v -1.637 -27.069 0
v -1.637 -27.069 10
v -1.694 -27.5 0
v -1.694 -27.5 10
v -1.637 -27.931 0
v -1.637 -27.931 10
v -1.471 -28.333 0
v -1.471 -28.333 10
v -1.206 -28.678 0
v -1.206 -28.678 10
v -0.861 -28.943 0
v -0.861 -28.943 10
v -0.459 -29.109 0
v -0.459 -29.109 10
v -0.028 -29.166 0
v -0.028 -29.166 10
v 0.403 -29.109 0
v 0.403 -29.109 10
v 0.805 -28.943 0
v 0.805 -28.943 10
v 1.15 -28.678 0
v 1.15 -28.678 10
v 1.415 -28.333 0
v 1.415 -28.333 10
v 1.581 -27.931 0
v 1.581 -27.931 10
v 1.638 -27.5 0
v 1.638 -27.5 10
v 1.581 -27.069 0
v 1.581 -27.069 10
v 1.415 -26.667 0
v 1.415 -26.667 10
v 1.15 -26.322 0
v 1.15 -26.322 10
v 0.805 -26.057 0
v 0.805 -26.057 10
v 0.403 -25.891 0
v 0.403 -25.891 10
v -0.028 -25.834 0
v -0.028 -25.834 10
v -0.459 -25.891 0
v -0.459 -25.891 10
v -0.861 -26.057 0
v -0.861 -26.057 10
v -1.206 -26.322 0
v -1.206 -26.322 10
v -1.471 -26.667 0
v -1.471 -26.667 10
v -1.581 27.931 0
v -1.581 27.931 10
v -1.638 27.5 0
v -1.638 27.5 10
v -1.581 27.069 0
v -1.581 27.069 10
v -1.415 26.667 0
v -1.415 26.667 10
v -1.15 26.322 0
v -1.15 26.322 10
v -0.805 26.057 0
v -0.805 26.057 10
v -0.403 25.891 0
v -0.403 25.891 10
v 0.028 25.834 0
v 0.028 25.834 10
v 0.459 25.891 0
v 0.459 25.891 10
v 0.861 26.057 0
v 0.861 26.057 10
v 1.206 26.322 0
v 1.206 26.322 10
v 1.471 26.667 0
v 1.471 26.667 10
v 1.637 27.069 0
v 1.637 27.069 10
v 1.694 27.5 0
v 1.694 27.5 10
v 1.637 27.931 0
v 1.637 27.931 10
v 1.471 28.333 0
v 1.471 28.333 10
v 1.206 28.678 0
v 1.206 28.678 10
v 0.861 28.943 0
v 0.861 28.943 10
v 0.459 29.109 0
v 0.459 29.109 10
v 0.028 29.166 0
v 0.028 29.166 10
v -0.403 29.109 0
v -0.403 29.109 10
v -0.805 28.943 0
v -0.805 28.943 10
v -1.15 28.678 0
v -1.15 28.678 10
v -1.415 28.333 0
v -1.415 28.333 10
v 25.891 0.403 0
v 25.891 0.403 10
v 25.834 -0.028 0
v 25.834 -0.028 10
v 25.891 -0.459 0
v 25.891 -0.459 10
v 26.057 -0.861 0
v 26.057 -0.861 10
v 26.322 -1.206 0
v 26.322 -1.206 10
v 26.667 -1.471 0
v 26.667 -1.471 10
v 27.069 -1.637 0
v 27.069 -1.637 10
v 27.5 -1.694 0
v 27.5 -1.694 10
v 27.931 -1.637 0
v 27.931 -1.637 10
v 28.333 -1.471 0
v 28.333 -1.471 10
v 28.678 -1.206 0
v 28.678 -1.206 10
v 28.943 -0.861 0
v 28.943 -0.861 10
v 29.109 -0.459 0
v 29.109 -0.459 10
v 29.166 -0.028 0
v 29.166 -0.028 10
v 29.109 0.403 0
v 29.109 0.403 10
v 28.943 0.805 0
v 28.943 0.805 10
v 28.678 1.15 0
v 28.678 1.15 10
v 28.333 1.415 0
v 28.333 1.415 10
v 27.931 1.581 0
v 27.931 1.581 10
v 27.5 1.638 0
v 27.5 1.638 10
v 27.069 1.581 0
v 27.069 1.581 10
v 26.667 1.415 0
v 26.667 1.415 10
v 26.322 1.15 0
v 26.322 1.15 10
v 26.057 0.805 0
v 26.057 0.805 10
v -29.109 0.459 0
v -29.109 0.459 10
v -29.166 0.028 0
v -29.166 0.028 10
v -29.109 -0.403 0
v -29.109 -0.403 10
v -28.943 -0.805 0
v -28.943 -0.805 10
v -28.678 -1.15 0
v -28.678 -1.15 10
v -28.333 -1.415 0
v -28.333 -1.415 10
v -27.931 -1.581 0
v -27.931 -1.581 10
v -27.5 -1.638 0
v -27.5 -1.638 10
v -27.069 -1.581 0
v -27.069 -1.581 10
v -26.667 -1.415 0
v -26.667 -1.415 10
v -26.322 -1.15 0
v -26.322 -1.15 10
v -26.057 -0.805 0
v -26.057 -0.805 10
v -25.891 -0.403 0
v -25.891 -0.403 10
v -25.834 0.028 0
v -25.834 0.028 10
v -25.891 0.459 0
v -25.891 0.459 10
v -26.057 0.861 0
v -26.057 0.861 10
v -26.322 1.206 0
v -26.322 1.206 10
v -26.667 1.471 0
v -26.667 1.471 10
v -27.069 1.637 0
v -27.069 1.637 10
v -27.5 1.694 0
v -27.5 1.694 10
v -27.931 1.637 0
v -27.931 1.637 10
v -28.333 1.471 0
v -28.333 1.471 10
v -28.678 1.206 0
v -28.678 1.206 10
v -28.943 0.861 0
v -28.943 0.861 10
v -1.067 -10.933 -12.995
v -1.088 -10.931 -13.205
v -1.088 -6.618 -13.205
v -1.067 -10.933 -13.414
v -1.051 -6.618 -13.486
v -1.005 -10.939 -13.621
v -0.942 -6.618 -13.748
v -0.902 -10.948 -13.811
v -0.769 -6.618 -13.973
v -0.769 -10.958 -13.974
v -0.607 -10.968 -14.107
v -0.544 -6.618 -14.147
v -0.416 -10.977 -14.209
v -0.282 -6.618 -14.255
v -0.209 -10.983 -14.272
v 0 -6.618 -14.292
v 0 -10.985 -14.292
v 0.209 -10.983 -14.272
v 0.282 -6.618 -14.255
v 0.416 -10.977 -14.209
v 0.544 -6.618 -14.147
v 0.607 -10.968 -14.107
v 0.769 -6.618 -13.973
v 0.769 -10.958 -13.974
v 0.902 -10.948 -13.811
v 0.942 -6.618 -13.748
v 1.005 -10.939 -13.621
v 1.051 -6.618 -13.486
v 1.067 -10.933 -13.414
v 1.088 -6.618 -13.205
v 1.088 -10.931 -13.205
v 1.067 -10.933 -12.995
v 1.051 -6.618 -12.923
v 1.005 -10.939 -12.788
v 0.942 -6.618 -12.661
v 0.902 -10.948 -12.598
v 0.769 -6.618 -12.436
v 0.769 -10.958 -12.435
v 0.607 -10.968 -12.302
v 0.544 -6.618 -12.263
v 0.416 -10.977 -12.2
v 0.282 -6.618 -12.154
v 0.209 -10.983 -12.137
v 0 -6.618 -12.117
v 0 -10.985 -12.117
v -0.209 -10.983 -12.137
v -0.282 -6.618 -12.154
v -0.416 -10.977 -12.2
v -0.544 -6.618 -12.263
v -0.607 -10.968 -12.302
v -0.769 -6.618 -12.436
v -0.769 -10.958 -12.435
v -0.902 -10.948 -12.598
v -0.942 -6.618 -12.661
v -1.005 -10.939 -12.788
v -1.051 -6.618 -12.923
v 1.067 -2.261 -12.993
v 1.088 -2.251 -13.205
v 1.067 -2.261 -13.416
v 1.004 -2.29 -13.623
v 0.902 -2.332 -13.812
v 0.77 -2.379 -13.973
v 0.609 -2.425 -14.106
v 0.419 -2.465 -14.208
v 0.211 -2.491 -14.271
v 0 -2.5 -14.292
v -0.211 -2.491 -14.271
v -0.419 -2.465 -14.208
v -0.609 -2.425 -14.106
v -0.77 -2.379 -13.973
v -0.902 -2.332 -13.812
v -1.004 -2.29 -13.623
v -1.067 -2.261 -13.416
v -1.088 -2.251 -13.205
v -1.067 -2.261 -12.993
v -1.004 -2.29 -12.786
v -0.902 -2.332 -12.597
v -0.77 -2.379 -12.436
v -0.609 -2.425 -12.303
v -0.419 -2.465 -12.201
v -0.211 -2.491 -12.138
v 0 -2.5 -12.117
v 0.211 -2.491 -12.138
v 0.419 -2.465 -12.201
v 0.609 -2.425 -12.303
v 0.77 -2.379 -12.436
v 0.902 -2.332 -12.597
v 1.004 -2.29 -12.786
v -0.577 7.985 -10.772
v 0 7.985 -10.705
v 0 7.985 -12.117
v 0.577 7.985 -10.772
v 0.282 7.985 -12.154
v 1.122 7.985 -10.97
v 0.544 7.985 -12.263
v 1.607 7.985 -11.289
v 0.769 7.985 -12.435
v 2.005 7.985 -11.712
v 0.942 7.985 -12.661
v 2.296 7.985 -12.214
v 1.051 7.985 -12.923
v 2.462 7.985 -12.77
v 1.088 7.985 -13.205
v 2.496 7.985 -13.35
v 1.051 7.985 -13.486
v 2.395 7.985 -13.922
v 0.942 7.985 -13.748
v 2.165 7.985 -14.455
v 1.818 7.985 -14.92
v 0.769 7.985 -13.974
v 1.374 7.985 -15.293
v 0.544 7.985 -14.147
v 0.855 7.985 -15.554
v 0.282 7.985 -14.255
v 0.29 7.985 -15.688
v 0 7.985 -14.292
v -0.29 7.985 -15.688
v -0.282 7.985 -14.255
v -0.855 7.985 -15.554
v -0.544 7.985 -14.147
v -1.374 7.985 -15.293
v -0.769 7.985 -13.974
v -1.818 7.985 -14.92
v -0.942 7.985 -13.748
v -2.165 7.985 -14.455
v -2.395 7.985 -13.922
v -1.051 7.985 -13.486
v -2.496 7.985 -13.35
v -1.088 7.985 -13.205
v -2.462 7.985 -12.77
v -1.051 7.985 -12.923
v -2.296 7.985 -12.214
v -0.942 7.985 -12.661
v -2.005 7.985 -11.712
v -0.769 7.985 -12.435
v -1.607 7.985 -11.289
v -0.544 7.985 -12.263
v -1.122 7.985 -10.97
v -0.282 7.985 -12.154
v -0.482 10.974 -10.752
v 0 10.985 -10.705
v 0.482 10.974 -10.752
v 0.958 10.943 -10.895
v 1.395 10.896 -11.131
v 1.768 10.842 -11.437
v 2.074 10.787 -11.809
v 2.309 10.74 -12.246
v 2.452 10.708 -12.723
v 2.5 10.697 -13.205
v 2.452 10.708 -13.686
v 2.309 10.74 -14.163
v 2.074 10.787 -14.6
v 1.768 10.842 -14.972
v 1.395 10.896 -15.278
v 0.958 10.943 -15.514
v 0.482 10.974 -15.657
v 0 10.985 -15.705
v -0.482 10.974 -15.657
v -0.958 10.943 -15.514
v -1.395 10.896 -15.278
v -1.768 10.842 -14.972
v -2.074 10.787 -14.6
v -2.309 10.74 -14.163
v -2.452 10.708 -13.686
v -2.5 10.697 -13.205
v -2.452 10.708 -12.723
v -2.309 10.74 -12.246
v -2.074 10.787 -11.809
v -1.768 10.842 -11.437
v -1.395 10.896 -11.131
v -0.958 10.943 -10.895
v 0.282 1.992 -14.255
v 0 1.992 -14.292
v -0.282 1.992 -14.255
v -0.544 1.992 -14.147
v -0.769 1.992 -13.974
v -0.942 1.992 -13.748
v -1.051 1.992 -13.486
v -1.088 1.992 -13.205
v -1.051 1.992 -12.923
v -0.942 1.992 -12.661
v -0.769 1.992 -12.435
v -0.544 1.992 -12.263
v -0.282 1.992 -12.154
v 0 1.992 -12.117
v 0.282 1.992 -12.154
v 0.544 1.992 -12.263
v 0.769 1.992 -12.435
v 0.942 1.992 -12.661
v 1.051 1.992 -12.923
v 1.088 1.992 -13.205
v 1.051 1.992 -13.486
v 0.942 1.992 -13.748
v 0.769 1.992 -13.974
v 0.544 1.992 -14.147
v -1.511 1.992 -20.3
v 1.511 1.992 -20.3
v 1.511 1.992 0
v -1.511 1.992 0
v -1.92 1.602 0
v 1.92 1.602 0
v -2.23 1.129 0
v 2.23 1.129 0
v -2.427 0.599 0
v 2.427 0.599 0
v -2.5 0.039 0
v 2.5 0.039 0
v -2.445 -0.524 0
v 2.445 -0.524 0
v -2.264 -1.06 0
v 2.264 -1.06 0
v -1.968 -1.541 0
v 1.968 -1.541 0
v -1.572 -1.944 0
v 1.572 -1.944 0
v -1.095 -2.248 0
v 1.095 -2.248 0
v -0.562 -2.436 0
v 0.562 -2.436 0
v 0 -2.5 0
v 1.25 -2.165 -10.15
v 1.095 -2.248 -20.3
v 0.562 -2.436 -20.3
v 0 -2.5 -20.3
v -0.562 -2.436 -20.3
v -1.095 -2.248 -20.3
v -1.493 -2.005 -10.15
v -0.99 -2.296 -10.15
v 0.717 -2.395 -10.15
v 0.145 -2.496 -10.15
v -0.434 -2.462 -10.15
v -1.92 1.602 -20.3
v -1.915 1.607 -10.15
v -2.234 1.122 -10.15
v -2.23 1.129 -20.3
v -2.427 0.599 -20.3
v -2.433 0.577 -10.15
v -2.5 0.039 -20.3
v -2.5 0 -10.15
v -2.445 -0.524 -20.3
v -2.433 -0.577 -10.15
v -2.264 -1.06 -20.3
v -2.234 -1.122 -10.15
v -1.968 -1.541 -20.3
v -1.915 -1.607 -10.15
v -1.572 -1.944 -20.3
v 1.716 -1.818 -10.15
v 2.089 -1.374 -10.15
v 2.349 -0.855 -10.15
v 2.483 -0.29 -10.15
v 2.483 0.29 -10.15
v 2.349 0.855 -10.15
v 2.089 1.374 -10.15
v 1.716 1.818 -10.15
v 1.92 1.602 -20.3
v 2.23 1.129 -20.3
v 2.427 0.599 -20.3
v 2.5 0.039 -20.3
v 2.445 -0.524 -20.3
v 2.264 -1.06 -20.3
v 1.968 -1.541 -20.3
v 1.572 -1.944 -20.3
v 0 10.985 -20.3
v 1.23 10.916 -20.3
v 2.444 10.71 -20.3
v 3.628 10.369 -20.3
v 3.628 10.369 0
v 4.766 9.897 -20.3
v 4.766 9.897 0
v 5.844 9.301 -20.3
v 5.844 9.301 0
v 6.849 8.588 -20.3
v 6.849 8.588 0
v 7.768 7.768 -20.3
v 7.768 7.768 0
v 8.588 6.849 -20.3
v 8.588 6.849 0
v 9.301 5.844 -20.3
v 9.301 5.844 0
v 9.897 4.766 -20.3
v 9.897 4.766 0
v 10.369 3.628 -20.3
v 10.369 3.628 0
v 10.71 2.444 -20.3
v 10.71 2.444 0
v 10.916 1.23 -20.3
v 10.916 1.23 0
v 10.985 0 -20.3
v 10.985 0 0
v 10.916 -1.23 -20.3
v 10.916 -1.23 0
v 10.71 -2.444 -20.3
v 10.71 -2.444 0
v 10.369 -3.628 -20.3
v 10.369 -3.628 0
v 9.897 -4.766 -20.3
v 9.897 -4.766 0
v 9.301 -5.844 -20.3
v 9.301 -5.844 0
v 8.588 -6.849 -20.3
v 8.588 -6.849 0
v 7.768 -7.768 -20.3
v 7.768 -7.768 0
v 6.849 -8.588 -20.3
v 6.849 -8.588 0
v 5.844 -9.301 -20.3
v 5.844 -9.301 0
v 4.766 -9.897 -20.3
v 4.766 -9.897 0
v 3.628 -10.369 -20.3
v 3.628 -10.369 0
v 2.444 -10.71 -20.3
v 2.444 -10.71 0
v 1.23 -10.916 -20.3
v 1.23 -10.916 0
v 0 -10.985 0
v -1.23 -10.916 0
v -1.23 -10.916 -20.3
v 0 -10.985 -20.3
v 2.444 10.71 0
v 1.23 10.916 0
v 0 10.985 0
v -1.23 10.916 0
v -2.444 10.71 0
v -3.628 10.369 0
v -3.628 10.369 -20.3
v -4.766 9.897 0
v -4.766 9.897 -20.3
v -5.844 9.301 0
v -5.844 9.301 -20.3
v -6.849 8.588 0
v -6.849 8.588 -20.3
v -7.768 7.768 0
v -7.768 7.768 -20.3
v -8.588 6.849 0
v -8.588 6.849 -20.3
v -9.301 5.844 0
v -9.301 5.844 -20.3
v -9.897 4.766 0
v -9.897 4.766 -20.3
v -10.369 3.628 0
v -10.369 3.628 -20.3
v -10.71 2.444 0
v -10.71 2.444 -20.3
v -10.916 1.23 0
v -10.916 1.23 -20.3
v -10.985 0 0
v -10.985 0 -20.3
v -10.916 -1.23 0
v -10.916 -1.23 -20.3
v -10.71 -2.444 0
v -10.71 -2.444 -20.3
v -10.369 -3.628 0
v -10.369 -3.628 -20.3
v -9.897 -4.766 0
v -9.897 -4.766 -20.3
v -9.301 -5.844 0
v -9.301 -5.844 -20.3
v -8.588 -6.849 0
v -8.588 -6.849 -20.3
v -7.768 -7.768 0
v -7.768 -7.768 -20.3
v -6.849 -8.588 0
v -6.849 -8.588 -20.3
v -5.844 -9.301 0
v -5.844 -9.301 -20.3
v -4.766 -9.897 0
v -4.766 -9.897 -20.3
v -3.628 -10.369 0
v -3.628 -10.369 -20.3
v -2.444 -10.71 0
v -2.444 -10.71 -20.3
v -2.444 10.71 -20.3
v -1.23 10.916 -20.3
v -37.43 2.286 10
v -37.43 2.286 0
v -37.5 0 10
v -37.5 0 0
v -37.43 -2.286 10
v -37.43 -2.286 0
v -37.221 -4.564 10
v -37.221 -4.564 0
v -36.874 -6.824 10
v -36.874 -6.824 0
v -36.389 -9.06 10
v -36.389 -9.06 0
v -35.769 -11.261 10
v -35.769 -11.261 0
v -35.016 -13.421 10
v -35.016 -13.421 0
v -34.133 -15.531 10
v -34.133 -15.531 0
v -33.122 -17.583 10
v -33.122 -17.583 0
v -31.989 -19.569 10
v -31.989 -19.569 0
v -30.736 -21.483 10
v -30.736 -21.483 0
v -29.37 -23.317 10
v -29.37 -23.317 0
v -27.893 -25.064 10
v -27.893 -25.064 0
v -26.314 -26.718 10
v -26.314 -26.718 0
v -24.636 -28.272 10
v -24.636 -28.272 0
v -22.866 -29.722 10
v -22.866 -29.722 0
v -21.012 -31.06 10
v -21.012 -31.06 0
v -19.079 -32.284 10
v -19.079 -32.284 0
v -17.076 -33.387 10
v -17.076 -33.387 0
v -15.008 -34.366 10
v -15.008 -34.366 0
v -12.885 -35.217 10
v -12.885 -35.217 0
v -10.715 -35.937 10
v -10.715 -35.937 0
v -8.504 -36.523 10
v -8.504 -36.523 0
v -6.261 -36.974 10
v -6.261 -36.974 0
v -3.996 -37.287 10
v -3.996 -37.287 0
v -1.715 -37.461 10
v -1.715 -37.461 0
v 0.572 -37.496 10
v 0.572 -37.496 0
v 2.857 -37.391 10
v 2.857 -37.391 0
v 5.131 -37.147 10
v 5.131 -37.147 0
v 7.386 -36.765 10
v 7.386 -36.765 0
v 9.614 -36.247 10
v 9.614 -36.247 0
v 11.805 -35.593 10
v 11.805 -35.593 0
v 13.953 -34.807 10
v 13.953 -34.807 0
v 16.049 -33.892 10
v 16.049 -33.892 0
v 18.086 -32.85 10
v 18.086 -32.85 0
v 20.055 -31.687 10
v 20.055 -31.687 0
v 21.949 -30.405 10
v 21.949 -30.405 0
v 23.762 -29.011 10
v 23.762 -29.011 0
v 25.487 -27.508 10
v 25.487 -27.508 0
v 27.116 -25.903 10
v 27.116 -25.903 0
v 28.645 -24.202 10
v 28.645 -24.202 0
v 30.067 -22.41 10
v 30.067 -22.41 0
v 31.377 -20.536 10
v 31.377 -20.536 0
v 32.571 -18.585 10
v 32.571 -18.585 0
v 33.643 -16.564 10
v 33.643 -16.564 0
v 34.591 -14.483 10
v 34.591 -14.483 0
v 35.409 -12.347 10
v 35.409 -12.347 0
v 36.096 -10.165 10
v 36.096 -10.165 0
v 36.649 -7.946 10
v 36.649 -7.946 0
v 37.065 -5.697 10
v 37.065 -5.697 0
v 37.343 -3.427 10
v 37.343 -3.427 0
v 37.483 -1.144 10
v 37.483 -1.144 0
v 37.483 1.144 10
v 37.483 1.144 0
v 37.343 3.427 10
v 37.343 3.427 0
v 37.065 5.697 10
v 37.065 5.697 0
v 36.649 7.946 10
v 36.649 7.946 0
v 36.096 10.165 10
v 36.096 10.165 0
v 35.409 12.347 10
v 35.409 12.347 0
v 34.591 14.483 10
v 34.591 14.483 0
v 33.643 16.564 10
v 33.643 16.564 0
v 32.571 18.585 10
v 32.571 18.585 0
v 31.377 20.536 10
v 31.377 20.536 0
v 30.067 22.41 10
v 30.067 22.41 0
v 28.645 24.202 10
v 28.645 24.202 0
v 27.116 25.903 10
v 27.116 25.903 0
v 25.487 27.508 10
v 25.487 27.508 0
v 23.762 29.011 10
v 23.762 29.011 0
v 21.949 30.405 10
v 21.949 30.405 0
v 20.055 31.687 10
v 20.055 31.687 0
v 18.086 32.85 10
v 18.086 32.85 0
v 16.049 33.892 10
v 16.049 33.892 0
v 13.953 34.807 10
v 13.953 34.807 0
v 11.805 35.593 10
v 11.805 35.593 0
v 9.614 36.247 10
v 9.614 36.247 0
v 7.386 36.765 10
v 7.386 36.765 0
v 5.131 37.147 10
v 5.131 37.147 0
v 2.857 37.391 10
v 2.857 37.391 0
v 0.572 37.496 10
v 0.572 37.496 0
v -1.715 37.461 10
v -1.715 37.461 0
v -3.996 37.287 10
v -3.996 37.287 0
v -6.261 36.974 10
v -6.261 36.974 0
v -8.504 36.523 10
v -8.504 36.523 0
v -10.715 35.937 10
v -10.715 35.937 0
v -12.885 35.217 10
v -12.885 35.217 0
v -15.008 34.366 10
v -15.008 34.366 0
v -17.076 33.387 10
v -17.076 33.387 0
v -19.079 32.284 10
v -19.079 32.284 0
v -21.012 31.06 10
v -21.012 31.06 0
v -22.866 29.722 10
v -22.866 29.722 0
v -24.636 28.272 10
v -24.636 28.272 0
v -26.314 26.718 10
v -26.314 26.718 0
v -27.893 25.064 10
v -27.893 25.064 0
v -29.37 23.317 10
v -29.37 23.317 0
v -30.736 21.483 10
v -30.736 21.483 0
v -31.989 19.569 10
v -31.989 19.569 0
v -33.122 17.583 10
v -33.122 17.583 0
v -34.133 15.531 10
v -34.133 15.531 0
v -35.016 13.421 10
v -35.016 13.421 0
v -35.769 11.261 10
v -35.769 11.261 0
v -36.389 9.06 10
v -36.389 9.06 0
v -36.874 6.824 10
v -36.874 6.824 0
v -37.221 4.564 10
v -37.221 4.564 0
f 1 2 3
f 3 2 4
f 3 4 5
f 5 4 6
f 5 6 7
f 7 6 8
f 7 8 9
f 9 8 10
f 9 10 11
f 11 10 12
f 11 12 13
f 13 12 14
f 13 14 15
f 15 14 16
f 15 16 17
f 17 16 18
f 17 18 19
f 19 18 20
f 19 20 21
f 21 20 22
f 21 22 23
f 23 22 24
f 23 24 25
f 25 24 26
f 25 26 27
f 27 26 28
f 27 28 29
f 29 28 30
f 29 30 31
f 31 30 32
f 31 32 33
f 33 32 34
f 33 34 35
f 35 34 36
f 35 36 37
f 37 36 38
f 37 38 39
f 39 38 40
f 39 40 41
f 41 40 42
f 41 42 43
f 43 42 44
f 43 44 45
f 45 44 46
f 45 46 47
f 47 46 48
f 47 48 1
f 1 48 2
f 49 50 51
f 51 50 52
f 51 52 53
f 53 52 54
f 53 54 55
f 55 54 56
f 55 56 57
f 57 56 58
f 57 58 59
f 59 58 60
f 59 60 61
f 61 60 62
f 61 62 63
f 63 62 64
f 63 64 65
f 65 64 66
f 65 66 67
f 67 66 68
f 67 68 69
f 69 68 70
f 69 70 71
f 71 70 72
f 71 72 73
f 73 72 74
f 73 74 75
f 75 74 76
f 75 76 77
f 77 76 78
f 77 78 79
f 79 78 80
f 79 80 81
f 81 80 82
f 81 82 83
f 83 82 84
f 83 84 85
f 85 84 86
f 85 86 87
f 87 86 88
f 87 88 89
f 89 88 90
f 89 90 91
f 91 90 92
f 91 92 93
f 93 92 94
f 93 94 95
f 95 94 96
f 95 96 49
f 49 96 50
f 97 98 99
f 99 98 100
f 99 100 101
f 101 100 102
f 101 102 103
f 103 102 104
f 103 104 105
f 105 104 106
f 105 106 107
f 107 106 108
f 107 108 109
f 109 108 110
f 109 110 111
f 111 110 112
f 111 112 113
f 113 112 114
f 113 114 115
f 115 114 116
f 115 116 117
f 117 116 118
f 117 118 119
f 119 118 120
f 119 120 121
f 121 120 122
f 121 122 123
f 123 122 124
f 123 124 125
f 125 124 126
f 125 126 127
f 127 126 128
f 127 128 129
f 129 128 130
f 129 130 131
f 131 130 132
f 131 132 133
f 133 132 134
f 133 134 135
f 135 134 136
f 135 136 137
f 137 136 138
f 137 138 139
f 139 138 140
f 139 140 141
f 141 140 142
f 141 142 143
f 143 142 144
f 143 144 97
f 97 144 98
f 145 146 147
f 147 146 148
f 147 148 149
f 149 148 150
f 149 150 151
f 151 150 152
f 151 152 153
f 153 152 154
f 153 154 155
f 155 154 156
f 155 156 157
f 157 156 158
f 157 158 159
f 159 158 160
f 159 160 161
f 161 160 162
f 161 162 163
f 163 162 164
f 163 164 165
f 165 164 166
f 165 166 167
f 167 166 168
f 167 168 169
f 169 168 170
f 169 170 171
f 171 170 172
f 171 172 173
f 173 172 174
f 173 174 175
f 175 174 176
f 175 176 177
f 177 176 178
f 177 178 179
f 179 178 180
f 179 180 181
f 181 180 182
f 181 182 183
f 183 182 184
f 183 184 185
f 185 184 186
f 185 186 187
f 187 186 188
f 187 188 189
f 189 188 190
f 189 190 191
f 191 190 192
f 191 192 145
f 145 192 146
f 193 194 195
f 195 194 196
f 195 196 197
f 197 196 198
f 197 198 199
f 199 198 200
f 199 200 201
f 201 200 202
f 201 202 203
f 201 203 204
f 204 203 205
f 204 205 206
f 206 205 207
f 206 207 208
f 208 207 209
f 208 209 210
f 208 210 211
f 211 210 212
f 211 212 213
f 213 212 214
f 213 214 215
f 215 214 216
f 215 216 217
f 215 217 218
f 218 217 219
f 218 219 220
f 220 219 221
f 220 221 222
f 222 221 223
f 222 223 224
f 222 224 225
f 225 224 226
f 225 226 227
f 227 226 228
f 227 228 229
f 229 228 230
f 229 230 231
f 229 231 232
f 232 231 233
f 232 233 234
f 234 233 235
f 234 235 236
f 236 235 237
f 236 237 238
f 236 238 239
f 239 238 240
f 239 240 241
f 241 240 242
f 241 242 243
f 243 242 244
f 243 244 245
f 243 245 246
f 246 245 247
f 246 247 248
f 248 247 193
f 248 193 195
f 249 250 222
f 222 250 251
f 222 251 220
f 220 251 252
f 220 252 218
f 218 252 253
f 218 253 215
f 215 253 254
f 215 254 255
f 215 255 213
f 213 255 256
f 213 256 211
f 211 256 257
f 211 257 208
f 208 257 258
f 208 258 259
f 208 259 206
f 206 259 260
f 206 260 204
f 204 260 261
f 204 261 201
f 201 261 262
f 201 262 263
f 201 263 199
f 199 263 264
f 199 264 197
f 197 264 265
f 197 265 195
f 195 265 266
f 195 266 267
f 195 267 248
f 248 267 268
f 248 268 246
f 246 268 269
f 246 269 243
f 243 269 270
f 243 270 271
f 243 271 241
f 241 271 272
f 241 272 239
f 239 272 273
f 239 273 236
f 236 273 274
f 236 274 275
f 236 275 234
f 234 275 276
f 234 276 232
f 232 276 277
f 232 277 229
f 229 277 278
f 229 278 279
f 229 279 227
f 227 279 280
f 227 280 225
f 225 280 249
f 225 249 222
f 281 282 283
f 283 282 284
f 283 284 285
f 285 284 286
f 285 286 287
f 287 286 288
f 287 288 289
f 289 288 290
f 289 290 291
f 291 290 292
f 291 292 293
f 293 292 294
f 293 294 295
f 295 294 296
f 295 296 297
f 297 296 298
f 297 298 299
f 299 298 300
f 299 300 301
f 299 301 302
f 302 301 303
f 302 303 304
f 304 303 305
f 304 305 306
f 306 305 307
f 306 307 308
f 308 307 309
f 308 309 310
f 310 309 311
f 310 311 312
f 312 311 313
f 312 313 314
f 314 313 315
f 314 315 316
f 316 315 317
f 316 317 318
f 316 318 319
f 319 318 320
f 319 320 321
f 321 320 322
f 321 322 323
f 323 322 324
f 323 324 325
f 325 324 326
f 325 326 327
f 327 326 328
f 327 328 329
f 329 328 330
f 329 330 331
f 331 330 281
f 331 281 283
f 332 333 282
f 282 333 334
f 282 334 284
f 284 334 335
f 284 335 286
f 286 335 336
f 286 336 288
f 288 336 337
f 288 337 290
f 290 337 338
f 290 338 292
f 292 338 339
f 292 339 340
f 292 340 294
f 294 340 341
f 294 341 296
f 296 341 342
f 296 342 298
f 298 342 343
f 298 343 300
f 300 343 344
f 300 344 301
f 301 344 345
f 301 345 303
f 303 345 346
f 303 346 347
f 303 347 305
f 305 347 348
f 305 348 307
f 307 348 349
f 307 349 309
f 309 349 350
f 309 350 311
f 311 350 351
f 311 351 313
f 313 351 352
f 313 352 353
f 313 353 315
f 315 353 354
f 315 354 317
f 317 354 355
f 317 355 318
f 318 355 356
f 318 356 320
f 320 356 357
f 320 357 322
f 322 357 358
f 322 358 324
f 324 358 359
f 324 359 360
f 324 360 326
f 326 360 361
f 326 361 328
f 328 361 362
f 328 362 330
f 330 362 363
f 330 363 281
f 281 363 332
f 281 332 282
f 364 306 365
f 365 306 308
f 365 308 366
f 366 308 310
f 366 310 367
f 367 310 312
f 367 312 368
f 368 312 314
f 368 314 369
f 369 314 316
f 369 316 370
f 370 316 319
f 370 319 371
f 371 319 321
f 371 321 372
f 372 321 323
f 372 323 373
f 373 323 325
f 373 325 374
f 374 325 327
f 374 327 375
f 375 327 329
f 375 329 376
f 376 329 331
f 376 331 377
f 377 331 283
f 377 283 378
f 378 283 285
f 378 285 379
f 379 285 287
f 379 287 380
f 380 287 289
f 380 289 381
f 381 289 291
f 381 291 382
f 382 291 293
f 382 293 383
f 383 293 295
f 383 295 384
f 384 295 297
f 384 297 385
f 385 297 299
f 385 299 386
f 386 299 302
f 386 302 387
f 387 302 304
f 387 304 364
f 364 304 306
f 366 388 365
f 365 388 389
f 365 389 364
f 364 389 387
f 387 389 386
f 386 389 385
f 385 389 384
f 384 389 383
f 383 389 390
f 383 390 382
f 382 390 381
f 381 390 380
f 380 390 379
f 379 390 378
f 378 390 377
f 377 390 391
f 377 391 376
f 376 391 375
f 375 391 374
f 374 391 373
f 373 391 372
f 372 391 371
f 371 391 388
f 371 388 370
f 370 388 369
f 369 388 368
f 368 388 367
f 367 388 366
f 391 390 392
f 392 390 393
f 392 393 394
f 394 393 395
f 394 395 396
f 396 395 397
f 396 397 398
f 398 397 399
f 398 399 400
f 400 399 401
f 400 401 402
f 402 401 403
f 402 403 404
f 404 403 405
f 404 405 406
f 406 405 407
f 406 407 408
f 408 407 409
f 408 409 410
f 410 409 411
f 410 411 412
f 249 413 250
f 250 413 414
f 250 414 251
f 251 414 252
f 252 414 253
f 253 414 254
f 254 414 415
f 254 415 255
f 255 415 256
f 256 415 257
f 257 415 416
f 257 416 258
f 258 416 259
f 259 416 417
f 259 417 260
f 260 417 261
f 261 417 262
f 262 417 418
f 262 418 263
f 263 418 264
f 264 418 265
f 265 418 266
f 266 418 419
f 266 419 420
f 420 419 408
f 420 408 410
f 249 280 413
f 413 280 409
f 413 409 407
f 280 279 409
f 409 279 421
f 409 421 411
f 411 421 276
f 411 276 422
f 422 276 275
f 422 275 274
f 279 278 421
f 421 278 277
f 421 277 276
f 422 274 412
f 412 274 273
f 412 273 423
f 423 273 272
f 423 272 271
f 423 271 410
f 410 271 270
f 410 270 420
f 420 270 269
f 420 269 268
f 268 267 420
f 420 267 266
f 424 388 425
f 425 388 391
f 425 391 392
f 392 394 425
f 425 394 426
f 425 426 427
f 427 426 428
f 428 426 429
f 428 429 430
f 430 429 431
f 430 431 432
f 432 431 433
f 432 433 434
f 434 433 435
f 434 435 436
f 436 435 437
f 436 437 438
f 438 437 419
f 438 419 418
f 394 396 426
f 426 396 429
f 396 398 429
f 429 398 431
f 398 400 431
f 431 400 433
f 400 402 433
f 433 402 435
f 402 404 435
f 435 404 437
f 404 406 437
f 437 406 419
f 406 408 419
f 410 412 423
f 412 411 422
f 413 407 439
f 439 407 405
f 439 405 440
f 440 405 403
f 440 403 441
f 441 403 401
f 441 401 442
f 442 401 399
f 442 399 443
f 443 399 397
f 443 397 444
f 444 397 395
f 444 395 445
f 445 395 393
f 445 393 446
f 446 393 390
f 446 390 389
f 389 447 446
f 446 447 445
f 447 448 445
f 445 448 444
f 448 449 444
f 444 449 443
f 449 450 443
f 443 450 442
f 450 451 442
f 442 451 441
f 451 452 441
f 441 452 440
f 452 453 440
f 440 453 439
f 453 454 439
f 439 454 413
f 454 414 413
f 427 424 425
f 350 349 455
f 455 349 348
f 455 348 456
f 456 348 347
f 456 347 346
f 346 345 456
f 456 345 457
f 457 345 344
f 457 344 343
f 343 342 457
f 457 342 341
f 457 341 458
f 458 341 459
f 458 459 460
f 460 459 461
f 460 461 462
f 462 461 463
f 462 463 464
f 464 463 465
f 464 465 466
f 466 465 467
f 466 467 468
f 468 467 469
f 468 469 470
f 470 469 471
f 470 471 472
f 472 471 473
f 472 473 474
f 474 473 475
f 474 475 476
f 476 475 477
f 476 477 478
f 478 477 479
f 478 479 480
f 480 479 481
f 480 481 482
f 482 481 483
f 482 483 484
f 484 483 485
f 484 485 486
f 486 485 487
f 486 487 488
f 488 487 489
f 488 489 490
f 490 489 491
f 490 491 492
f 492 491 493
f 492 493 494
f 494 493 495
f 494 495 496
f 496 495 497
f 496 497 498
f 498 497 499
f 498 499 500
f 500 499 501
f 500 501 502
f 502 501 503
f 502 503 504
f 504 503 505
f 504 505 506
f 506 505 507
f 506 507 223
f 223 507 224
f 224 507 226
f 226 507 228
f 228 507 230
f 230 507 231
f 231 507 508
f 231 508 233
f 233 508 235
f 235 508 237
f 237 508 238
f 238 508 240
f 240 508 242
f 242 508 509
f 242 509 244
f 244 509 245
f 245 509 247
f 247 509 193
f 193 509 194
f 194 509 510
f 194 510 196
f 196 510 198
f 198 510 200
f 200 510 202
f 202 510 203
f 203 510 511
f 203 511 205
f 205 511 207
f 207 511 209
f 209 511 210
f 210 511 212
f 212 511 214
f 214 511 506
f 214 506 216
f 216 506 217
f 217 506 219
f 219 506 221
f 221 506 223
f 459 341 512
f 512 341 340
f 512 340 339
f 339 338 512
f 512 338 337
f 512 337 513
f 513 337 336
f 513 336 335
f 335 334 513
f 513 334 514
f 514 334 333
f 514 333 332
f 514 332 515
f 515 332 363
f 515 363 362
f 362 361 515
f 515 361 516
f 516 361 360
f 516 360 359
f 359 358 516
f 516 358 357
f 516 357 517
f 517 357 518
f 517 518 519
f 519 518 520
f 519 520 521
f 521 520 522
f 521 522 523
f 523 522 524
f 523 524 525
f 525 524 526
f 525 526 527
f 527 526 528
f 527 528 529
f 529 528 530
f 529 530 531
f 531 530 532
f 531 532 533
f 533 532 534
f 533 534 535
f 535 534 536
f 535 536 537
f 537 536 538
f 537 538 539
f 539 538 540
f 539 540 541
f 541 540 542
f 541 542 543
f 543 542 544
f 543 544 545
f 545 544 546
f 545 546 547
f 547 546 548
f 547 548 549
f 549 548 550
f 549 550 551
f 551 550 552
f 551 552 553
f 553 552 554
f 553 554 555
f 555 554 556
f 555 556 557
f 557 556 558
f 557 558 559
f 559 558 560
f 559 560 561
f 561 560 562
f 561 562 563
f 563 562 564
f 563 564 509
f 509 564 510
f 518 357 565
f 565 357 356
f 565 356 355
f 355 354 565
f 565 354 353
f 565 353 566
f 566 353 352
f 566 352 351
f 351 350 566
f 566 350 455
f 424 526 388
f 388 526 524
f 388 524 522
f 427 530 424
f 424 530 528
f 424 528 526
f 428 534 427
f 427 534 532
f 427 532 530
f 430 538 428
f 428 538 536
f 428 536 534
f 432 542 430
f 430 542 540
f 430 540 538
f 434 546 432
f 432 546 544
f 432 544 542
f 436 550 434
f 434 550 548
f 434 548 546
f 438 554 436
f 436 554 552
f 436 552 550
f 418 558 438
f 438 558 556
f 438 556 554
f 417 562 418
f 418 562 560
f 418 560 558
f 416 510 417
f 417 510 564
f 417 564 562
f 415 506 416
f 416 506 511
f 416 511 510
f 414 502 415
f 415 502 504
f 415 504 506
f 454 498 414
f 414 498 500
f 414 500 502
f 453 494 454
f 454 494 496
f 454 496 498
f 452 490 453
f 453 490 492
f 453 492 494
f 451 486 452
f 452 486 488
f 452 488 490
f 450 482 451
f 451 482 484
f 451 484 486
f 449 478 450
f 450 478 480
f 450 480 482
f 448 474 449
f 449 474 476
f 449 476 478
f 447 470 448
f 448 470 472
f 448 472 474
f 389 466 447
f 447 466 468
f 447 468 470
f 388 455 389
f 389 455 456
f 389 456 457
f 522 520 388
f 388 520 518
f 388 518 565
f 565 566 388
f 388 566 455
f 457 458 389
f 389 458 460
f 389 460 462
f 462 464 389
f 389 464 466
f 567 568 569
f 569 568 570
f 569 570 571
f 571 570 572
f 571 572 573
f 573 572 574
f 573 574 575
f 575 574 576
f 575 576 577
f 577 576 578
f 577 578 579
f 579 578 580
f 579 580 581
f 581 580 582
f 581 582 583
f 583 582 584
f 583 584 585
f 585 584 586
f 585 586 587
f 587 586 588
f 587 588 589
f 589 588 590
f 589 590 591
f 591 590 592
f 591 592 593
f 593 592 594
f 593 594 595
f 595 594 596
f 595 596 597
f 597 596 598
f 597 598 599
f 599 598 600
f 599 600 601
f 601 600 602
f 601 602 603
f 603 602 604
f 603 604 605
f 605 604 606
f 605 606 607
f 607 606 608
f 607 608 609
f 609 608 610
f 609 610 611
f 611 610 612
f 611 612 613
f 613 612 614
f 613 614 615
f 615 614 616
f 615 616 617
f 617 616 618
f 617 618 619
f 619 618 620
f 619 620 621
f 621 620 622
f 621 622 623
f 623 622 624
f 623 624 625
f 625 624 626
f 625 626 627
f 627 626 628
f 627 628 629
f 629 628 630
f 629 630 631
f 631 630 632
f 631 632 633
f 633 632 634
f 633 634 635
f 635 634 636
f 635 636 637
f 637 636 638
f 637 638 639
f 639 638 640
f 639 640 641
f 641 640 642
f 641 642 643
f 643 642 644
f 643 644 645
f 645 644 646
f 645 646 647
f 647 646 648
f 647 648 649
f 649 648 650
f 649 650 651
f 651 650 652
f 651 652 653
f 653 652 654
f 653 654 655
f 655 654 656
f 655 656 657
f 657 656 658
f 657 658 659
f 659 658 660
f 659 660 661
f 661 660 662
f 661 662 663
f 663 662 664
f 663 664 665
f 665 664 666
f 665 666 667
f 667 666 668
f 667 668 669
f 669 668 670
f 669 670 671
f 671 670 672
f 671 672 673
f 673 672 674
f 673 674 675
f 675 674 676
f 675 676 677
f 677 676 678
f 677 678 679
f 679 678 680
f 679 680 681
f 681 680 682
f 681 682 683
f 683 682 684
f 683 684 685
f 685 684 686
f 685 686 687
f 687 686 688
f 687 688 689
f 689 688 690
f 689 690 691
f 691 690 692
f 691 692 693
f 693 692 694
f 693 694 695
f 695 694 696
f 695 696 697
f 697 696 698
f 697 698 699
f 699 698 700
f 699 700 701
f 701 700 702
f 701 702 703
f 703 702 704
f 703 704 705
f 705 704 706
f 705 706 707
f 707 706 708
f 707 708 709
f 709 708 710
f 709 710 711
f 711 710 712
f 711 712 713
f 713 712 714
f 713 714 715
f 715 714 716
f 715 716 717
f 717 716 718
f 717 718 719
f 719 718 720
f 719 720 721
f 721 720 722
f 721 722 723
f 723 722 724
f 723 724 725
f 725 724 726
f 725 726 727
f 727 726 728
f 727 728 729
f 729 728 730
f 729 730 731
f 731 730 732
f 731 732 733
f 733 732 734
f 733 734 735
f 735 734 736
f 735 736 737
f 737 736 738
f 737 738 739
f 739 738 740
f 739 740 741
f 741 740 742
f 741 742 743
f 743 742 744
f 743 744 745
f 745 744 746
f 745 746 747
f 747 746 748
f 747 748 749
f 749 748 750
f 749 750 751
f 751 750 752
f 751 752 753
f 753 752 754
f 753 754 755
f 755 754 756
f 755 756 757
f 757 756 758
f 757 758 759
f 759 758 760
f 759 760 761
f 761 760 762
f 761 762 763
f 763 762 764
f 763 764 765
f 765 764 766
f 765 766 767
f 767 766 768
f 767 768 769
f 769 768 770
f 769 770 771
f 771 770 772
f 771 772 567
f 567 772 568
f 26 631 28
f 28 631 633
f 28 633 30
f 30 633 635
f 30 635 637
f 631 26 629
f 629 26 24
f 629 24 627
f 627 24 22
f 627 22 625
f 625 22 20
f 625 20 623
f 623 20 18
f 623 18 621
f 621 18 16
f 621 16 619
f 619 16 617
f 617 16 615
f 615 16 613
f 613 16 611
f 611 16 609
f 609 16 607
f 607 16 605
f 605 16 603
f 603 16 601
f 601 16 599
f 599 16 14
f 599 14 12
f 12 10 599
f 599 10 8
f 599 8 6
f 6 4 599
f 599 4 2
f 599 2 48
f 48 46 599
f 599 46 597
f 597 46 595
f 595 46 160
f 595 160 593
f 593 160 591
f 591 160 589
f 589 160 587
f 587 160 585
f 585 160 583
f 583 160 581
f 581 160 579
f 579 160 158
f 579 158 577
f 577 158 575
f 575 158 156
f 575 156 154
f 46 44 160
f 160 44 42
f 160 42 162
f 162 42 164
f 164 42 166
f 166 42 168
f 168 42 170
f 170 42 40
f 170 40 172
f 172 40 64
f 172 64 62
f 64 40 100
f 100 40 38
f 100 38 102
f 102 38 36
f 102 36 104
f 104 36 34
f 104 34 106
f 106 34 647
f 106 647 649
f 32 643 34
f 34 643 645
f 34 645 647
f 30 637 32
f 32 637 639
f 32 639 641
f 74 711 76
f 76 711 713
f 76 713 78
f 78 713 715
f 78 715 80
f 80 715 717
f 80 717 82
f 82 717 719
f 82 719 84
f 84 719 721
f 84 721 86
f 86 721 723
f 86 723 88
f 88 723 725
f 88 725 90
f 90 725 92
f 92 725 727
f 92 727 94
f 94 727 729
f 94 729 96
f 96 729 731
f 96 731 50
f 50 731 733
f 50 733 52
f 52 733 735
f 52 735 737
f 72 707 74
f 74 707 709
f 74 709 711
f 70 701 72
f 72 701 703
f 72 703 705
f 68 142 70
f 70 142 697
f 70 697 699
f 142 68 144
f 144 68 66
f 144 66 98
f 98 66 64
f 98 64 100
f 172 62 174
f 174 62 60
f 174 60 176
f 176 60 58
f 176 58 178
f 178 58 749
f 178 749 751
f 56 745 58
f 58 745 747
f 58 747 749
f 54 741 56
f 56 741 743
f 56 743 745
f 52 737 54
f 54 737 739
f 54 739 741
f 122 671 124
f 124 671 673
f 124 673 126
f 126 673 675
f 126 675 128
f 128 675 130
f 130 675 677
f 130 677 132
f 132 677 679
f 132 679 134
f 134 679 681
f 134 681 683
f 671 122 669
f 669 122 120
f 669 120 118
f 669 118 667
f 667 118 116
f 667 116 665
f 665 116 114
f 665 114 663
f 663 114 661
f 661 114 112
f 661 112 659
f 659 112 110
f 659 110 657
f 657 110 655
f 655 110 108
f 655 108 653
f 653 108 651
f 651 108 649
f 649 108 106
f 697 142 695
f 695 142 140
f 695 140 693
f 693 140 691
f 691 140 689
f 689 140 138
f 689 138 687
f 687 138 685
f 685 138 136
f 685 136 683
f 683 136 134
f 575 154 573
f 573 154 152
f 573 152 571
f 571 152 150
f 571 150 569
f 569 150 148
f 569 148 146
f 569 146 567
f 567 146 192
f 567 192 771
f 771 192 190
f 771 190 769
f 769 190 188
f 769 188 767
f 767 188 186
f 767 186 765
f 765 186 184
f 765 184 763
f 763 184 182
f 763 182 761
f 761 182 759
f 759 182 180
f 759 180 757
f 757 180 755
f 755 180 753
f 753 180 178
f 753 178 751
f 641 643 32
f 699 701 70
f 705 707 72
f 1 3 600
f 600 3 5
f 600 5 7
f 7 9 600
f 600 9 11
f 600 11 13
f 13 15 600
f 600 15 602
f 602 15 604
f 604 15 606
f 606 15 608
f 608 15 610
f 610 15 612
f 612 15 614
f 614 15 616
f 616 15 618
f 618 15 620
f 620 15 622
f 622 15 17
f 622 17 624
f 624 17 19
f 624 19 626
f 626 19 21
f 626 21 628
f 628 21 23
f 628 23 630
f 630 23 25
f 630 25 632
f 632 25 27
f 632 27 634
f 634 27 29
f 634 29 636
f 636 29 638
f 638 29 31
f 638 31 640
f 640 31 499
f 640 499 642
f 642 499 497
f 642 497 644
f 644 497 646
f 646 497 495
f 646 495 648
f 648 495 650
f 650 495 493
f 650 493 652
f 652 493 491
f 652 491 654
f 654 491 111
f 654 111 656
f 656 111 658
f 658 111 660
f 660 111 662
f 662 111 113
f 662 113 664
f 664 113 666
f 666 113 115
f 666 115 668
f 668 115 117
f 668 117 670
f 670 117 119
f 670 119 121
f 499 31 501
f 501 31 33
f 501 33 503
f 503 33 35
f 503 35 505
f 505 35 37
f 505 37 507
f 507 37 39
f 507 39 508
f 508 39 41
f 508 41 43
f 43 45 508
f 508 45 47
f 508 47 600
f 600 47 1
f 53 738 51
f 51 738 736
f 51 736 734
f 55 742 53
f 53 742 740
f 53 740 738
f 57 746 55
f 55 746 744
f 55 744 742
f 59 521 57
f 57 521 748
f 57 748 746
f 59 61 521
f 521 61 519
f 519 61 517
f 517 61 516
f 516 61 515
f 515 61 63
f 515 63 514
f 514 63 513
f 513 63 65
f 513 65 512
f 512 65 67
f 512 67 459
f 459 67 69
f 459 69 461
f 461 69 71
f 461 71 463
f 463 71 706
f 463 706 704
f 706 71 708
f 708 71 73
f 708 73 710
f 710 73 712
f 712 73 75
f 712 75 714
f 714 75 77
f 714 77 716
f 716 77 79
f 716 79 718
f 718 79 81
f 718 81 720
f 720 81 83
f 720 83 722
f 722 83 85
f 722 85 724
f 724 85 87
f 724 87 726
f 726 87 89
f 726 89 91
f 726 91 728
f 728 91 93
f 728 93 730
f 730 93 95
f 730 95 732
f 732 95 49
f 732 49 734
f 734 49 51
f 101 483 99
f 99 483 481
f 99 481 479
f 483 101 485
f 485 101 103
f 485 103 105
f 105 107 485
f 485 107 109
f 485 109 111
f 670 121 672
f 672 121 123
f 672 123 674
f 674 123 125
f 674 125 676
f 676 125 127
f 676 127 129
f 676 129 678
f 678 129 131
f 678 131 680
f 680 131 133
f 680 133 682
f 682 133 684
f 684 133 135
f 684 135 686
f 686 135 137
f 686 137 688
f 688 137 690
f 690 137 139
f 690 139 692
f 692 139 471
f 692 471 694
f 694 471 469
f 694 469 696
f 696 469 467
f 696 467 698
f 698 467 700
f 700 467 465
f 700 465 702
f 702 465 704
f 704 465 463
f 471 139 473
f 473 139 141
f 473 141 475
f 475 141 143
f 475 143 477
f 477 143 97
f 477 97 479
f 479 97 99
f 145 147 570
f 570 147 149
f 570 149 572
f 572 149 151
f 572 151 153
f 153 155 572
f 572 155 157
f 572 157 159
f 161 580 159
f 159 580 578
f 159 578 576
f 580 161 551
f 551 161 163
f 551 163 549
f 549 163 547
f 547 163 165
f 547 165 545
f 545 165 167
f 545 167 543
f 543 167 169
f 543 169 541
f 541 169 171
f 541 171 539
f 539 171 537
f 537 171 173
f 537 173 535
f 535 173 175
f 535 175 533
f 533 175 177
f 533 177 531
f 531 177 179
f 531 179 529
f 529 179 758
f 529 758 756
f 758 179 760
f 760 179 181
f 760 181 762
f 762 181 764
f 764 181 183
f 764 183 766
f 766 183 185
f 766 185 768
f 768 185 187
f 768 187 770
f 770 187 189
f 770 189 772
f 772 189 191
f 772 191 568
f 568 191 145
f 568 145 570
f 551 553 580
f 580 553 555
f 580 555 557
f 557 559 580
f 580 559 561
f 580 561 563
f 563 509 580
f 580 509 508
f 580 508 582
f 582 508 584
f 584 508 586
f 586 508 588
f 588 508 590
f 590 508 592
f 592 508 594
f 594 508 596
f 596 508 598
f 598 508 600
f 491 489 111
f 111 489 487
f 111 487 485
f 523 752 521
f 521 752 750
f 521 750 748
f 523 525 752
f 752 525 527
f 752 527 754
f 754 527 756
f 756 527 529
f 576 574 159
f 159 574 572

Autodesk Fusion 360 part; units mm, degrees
sketch "Sketch1" plane through (0, 0, 0) normal (0, 0, 1) x (1, 0, 0)
  circle A0 centre (0, 0) radius 37.5
  dimension "d1" = 75
extrude "Extrude1" add sketch "Sketch1" along normal blind 10
sketch "Sketch2" plane through (0, 0, 0) normal (0, 0, -1) x (1, 0, 0)
  circle A0 centre (0, 0) radius 37.5
  circle A1 centre (0, 0) radius 10.985
  dimension "d4" = 21.97
extrude "Extrude2" add sketch "Sketch2" along normal blind 20.3 contours A1
sketch "Sketch3" plane through (0, 0, -20.3) normal (0, 0, -1) x (1, 0, 0)
  circle A0 centre (0, 0) radius 10.985
  circle A1 centre (0, 0) radius 2.5
  dimension "d7" = 5
extrude "Extrude3" cut sketch "Sketch3" against normal blind 20.3 contours A1
sketch "Sketch5" plane through (0, 0, -20.3) normal (0, 0, -1) x (1, 0, 0)
  circle A0 centre (0, 0) radius 2.5
  circle A1 centre (0, 0) radius 10.985
  line L0 (0, -1.992) -> (1.5106, -1.992)
  line L1 (0, -1.992) -> (-1.5106, -1.992)
  circle A2 centre (0, 0) radius 2.5
extrude "Extrude4" add sketch "Sketch5" against normal blind 20.3 contours A0 L0 L1 A2 picked at (0, -2.3263)
sketch "Sketch6" plane through (0, 1.992, 0) normal (0, -1, 0) x (1, 0, 0)
  line L0 (-1.5106, -20.3) -> (1.5106, -20.3)
  line L1 (1.5106, -20.3) -> (1.5106, 0)
  line L2 (1.5106, 0) -> (-1.5106, 0)
  line L3 (-1.5106, 0) -> (-1.5106, -20.3)
sketch "Sketch7" plane through (0, 0, -20.3) normal (0, 0, -1) x (1, 0, 0)
  arc A0 (1.5106, -1.992) -> (-1.5106, -1.992) centre (0, 0) ccw
  line L0 (1.5106, -1.992) -> (-1.5106, -1.992)
  circle A1 centre (0, 0) radius 10.985
hole "Hole1" at (0, 10.985, -13.2045) direction (0, -1, 0) diameter 2.175 depth 50 tip angle 180 counterbore diameter 5 counterbore depth 3
sketch "Sketch8" plane through (0, 0, 10) normal (0, 0, 1) x (-1, 0, 0)
  circle A0 centre (0, 0) radius 37.5
sketch "Sketch9" plane through (0, 0, 10) normal (0, 0, 1) x (-1, 0, 0)
  circle A0 centre (0, 0) radius 37.5
  line L0 (-0.0392, -37.5) -> (-0.0278, -27.5)
  line L1 (37.5, -0.0392) -> (27.5, -0.0278)
  line L2 (0.0392, 37.5) -> (0.0278, 27.5)
  line L3 (-37.5, 0.0392) -> (-27.5, 0.0278)
  dimension "d19" = 10
  dimension "d21" = 360
hole "Hole2" at (0.0278, 27.5, 10) at (27.5, -0.0278, 10) at (-0.0278, -27.5, 10) at (-27.5, 0.0278, 10) direction (0, 0, -1) diameter 3.332 depth 50 tip angle 180
component "6627T91_Stepper Motor" placed x (1, 0, 0) y (0, 1, 0) z (0, 0, 1) at (52.5447, 49.4652, -3.0795)
